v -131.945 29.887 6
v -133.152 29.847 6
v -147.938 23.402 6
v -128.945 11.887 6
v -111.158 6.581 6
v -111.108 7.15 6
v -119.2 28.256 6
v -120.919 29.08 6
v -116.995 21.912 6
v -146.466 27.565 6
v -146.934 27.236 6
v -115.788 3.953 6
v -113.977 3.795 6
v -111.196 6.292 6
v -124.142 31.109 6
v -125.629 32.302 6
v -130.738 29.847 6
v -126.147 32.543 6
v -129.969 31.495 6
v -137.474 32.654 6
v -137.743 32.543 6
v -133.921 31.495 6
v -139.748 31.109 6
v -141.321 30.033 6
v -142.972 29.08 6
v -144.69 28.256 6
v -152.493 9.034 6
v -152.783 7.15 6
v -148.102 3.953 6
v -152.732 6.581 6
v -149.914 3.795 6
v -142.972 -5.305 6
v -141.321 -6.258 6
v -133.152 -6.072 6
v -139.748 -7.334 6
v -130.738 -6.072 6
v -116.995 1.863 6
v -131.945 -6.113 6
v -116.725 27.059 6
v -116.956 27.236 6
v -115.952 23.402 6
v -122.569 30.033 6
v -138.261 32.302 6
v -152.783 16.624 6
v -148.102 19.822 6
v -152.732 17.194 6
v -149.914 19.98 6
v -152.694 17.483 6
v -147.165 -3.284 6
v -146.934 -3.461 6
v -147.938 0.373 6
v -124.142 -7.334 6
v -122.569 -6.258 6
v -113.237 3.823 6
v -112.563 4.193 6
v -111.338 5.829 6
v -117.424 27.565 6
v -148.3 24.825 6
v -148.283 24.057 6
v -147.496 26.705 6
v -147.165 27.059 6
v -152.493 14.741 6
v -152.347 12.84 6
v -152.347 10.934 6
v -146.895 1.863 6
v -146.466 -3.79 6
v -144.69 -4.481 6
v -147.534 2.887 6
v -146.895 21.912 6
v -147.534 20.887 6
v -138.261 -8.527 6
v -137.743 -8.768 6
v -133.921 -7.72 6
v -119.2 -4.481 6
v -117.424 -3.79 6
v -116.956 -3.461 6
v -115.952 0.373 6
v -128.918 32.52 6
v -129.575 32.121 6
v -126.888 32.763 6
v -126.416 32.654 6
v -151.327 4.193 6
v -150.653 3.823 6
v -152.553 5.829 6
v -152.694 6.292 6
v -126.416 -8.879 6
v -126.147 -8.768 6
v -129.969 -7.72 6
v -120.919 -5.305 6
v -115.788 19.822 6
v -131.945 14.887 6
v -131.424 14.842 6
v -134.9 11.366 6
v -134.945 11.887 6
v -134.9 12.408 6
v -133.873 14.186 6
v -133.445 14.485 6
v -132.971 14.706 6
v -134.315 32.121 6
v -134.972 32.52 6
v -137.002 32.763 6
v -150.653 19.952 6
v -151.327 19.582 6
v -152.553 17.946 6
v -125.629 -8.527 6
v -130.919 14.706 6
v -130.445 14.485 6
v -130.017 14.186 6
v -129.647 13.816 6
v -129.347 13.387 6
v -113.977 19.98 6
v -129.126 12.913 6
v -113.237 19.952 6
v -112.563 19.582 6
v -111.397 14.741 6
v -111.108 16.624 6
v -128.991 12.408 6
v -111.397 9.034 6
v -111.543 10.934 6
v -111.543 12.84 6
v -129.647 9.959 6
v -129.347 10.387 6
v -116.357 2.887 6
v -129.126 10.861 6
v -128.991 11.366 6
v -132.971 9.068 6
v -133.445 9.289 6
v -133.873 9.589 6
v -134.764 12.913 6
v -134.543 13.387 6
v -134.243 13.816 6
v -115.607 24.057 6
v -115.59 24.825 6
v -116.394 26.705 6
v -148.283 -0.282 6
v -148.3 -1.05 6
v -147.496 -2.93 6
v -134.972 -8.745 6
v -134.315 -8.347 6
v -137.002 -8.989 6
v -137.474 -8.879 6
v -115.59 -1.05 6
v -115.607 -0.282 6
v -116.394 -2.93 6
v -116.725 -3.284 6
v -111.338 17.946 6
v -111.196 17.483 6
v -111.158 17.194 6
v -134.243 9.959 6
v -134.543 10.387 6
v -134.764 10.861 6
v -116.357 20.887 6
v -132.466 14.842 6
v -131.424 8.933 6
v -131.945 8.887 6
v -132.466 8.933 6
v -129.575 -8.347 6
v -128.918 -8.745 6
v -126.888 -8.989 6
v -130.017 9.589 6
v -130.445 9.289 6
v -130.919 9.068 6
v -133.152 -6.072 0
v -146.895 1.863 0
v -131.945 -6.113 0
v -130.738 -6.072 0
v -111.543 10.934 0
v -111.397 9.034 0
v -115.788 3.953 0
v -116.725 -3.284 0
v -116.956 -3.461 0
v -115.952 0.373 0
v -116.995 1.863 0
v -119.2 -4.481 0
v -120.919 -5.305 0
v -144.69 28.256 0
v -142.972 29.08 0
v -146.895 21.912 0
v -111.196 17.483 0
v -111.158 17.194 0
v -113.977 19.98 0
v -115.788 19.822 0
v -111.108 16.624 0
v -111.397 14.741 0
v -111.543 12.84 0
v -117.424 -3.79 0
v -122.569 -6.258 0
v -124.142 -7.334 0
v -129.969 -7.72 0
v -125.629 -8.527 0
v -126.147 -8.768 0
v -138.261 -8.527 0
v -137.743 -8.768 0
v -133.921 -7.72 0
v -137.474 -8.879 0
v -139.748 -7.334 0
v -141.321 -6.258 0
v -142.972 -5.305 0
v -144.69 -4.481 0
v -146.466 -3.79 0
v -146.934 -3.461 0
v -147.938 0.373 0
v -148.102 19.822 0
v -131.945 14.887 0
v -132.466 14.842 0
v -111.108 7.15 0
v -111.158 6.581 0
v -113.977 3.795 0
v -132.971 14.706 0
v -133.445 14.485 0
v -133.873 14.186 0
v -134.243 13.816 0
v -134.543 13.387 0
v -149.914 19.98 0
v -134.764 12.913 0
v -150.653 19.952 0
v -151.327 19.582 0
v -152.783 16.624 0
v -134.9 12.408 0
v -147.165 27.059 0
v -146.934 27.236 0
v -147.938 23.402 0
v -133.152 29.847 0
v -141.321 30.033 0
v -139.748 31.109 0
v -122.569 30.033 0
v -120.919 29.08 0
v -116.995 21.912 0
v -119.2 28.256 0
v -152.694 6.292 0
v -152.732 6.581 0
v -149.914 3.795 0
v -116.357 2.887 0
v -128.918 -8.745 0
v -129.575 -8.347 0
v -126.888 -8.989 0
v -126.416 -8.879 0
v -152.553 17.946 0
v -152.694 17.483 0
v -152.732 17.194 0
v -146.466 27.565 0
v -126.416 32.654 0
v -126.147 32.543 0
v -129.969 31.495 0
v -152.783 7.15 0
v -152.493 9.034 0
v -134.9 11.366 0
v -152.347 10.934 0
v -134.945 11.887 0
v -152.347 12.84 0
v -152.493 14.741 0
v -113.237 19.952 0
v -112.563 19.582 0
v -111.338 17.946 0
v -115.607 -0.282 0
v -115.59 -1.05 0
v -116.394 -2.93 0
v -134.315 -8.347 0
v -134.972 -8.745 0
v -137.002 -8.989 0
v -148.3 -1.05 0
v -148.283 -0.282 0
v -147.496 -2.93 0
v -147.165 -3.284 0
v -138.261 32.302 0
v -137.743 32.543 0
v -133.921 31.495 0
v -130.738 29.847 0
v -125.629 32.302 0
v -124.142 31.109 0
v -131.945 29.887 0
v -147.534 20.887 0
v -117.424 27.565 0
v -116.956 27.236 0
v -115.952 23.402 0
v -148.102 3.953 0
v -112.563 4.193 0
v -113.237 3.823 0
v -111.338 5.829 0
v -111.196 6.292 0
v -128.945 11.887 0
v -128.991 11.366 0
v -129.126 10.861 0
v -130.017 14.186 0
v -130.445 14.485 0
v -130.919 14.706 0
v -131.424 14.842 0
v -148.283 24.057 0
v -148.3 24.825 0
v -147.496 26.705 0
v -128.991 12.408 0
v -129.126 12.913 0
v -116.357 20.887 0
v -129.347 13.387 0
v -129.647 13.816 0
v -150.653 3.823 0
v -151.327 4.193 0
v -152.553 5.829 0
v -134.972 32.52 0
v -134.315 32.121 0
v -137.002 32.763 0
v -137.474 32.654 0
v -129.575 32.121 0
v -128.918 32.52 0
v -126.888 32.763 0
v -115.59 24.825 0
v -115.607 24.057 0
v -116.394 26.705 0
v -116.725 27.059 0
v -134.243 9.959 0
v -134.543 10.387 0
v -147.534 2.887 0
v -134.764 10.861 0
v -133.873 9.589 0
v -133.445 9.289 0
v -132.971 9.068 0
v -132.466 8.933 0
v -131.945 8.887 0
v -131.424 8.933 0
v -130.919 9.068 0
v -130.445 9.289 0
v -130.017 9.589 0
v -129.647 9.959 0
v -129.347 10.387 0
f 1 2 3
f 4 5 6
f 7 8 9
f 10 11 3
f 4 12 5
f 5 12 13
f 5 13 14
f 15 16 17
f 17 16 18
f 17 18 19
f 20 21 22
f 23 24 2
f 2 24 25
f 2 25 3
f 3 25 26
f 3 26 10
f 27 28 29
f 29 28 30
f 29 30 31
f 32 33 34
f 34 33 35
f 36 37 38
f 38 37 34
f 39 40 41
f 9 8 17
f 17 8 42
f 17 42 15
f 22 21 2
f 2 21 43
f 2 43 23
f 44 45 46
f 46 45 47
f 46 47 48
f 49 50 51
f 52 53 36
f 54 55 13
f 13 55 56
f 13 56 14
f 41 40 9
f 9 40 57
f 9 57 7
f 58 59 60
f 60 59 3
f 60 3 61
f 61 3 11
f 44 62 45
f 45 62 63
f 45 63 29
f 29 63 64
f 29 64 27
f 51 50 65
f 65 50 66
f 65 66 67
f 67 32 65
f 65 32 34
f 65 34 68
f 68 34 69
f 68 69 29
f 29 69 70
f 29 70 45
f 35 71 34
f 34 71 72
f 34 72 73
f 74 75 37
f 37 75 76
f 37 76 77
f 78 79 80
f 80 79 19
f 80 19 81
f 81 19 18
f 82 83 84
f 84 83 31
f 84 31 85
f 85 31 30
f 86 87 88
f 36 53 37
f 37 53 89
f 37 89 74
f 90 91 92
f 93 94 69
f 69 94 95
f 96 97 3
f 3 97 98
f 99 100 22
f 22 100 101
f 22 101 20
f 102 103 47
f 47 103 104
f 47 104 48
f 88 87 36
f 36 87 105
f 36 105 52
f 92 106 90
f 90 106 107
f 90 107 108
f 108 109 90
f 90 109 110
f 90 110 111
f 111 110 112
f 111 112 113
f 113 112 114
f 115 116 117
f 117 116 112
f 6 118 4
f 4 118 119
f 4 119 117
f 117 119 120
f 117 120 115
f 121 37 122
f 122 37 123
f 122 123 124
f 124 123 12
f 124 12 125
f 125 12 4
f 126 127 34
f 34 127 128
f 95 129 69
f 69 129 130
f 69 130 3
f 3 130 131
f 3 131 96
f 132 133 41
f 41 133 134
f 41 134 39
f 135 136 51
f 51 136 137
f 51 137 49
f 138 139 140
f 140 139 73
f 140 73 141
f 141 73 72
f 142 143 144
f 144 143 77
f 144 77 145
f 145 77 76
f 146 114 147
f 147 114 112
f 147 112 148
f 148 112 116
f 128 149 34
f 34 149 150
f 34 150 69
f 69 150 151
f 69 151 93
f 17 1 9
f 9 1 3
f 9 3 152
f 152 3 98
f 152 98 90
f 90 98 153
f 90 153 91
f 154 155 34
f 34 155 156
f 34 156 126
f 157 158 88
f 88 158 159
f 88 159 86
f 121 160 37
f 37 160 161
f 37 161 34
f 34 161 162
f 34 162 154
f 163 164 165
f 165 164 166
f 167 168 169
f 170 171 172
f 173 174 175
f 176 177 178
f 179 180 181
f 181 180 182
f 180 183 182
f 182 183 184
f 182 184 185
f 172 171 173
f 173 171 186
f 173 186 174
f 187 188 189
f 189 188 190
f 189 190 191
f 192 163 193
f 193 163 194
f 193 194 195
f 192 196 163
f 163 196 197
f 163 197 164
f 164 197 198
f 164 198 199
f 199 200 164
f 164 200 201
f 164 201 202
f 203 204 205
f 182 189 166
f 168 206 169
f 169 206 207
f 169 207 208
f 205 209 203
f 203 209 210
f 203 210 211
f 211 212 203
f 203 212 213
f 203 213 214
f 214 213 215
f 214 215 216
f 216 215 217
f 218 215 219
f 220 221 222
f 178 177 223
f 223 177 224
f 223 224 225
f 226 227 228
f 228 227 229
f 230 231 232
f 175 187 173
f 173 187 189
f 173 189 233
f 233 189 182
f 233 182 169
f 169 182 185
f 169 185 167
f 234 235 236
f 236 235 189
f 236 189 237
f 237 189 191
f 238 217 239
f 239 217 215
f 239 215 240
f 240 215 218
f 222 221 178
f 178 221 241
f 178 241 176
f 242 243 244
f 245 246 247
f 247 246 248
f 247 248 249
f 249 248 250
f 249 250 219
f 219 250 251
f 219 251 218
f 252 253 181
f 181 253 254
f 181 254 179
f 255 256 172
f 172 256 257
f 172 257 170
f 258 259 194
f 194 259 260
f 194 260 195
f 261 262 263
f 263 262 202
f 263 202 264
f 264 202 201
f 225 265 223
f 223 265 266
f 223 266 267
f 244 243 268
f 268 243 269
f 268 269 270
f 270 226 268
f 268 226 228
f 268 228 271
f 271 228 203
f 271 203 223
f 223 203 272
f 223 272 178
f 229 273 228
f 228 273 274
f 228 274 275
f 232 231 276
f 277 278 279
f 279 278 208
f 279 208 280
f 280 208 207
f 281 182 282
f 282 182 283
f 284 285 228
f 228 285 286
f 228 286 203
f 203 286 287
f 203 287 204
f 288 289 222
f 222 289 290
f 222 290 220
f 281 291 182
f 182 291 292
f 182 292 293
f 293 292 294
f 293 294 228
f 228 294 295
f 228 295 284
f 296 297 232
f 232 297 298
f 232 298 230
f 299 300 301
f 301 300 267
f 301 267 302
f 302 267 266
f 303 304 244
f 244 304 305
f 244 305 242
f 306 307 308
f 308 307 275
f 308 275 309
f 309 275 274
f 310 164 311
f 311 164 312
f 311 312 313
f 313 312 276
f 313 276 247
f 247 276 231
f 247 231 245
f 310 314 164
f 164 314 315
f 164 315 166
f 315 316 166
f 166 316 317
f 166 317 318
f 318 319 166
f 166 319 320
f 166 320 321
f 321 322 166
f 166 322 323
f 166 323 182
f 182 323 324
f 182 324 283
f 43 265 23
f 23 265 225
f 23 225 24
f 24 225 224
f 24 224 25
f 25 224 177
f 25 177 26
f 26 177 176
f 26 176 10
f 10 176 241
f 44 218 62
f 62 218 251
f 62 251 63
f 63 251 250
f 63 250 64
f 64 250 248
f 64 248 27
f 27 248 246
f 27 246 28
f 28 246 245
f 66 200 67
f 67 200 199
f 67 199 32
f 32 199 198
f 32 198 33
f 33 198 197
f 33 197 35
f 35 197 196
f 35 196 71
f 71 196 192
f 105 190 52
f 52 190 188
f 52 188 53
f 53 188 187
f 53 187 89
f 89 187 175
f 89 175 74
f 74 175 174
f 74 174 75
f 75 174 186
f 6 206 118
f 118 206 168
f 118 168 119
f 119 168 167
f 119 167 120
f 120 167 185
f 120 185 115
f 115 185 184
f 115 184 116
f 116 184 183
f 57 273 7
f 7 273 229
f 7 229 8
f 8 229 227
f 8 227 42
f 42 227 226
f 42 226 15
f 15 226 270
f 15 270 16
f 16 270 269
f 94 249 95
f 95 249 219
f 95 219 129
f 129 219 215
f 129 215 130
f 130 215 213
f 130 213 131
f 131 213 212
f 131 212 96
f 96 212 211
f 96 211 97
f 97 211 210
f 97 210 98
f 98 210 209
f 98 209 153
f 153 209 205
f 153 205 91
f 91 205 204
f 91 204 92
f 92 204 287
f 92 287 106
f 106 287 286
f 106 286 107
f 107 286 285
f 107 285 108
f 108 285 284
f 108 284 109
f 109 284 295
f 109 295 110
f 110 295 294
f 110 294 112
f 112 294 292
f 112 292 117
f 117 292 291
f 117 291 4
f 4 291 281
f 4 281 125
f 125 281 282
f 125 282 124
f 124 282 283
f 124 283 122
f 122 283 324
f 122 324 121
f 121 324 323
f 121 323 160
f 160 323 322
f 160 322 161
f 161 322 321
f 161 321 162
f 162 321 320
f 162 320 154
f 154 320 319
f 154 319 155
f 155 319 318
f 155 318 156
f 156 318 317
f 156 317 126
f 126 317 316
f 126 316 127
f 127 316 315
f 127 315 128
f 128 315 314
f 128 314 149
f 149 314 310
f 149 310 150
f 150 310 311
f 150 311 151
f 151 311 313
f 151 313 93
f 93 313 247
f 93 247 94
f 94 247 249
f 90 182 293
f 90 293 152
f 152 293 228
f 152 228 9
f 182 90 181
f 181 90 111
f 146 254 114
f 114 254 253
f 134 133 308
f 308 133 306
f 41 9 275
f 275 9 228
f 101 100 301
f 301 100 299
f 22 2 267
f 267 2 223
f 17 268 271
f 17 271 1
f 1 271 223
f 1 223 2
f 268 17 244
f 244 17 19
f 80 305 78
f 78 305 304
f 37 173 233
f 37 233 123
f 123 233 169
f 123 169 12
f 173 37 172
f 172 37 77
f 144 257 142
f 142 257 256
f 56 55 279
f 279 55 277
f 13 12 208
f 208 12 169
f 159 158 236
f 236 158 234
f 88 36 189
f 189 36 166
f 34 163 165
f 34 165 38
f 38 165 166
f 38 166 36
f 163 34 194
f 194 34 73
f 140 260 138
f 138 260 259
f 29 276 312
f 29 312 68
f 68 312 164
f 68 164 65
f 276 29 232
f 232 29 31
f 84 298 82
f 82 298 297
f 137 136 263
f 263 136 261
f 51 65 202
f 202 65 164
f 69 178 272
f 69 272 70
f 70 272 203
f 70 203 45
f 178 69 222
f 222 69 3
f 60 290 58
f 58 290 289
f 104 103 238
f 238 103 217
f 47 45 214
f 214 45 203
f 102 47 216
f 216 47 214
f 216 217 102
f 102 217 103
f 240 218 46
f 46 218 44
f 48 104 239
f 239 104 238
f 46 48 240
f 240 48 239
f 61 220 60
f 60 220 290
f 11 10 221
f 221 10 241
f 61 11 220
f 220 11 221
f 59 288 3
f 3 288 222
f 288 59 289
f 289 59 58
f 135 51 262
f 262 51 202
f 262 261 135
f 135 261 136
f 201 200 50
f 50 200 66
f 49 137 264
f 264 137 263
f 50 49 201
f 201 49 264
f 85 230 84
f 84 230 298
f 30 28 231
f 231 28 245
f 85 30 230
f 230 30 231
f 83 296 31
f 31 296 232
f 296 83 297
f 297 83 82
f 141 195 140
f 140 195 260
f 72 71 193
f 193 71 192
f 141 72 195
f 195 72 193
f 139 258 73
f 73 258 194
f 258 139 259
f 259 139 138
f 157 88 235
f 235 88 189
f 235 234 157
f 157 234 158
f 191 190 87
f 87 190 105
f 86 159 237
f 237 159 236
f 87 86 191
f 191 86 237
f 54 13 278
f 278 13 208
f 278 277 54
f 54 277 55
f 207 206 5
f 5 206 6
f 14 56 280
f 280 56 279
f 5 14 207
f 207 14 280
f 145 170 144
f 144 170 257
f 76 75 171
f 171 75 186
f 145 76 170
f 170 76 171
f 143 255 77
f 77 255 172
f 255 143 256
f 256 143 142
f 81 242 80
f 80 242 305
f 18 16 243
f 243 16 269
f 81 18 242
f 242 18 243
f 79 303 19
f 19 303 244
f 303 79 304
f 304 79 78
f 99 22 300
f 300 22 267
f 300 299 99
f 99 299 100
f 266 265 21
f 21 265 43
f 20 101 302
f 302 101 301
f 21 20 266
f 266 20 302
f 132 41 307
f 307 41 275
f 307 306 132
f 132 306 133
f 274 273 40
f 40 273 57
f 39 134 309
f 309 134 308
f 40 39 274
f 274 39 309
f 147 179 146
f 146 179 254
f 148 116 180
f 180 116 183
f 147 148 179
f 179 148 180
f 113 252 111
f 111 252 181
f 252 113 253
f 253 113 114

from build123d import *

# Parameters (mm, degrees)
SKETCH1_R           = 3
BOSS_EXTRUDE2_DEPTH = 6
CUT_EXTRUDE1_DEPTH  = 7
CUT_EXTRUDE2_DEPTH  = 7


with BuildPart() as part:
    # Sketch1 → Boss-Extrude2 (new body)
    with BuildSketch(Plane.XY):
        with BuildLine():
            Line((-129.483201213, -12.731798863), (-129.756040866, -10.003402327))
            ThreePointArc((-129.756040866, -10.003402327), (-131.945122685, -10.112584142), (-134.134204503, -10.003402327))
            Line((-134.134204503, -10.003402327), (-134.407044157, -12.731798863))
            ThreePointArc((-134.407044157, -12.731798863), (-142.137187462, -5.76575817), (-152.035027318, -2.554278039))
            Line((-152.035027318, -2.554278039), (-149.808586433, -0.9537937))
            ThreePointArc((-149.808586433, -0.9537937), (-150.997681568, 0.887415858), (-151.997668251, 2.837807232))
            Line((-151.997668251, 2.837807232), (-154.49694879, 1.709895035))
            ThreePointArc((-154.49694879, 1.709895035), (-152.329252239, 11.887415858), (-154.49694879, 22.064936682))
            Line((-154.49694879, 22.064936682), (-151.997668251, 20.937024485))
            ThreePointArc((-151.997668251, 20.937024485), (-150.997681568, 22.887415858), (-149.808586433, 24.728625416))
            Line((-149.808586433, 24.728625416), (-152.035027318, 26.329109756))
            ThreePointArc((-152.035027318, 26.329109756), (-142.137187462, 29.540589886), (-134.407044157, 36.506630579))
            Line((-134.407044157, 36.506630579), (-134.134204503, 33.778234043))
            ThreePointArc((-134.134204503, 33.778234043), (-131.945122685, 33.887415858), (-129.756040866, 33.778234043))
            Line((-129.756040866, 33.778234043), (-129.483201213, 36.506630579))
            ThreePointArc((-129.483201213, 36.506630579), (-121.753057907, 29.540589886), (-111.855218051, 26.329109756))
            Line((-111.855218051, 26.329109756), (-114.081658936, 24.728625416))
            ThreePointArc((-114.081658936, 24.728625416), (-112.892563801, 22.887415858), (-111.892577118, 20.937024485))
            Line((-111.892577118, 20.937024485), (-109.393296579, 22.064936682))
            ThreePointArc((-109.393296579, 22.064936682), (-111.56099313, 11.887415858), (-109.393296579, 1.709895035))
            Line((-109.393296579, 1.709895035), (-111.892577118, 2.837807232))
            ThreePointArc((-111.892577118, 2.837807232), (-112.892563801, 0.887415858), (-114.081658936, -0.9537937))
            Line((-114.081658936, -0.9537937), (-111.855218051, -2.554278039))
            ThreePointArc((-111.855218051, -2.554278039), (-121.753057907, -5.76575817), (-129.483201213, -12.731798863))
        make_face()
        with Locations((-131.945122685, 11.887415858)):
            Circle(SKETCH1_R, mode=Mode.SUBTRACT)
    extrude(amount=BOSS_EXTRUDE2_DEPTH)

    # Sketch2 → Cut-Extrude1 (cut, through all)
    with BuildSketch(Plane(origin=(0, 0, 0), x_dir=(-1, 0, 0), z_dir=(0, 0, -1))):
        with BuildLine():
            ThreePointArc((130.738332945, 29.846952186), (131.945122685, 29.887451596), (133.151912424, 29.846952186))
            Line((133.151912424, 29.846952186), (134.365507242, 32.447465558))
            Line((134.365507242, 32.447465558), (137.658457935, 32.842028481))
            ThreePointArc((137.658457935, 32.842028481), (135.942681801, 34.594415702), (134.407044157, 36.506630579))
            Line((134.407044157, 36.506630579), (134.134204503, 33.778234043))
            ThreePointArc((134.134204503, 33.778234043), (131.945122685, 33.887415858), (129.756040866, 33.778234043))
            Line((129.756040866, 33.778234043), (129.483201213, 36.506630579))
            ThreePointArc((129.483201213, 36.506630579), (127.947563568, 34.594415702), (126.231787434, 32.842028481))
            Line((126.231787434, 32.842028481), (129.524738127, 32.447465558))
            Line((129.524738127, 32.447465558), (130.738332945, 29.846952186))
        make_face()
        with BuildLine():
            Line((148.540455749, 24.263555222), (146.895142515, 21.912294593))
            ThreePointArc((146.895142515, 21.912294593), (147.533610903, 20.887433727), (148.101932254, 19.82207345))
            Line((148.101932254, 19.82207345), (150.960840307, 20.071326194))
            Line((150.960840307, 20.071326194), (152.949017168, 17.416828703))
            ThreePointArc((152.949017168, 17.416828703), (153.608740951, 19.778928032), (154.49694879, 22.064936682))
            Line((154.49694879, 22.064936682), (151.997668251, 20.937024485))
            ThreePointArc((151.997668251, 20.937024485), (150.997681568, 22.887415858), (149.808586433, 24.728625416))
            Line((149.808586433, 24.728625416), (152.035027318, 26.329109756))
            ThreePointArc((152.035027318, 26.329109756), (149.611181835, 26.702903528), (147.235681918, 27.312615637))
            Line((147.235681918, 27.312615637), (148.540455749, 24.263555222))
        make_face()
        with BuildLine():
            ThreePointArc((115.788313115, 19.82207345), (116.356634466, 20.887433727), (116.995102855, 21.912294593))
            Line((116.995102855, 21.912294593), (115.34978962, 24.263555222))
            Line((115.34978962, 24.263555222), (116.654563452, 27.312615637))
            ThreePointArc((116.654563452, 27.312615637), (114.279063535, 26.702903528), (111.855218051, 26.329109756))
            Line((111.855218051, 26.329109756), (114.081658936, 24.728625416))
            ThreePointArc((114.081658936, 24.728625416), (112.892563801, 22.887415858), (111.892577118, 20.937024485))
            Line((111.892577118, 20.937024485), (109.393296579, 22.064936682))
            ThreePointArc((109.393296579, 22.064936682), (110.281504418, 19.778928032), (110.941228201, 17.416828703))
            Line((110.941228201, 17.416828703), (112.929405062, 20.071326194))
            Line((112.929405062, 20.071326194), (115.788313115, 19.82207345))
        make_face()
        with BuildLine():
            Line((150.960840307, 3.703505522), (148.101932254, 3.952758266))
            ThreePointArc((148.101932254, 3.952758266), (147.533610903, 2.887397989), (146.895142515, 1.862537123))
            Line((146.895142515, 1.862537123), (148.540455749, -0.488723506))
            Line((148.540455749, -0.488723506), (147.235681918, -3.537783921))
            ThreePointArc((147.235681918, -3.537783921), (149.611181835, -2.928071812), (152.035027318, -2.554278039))
            Line((152.035027318, -2.554278039), (149.808586433, -0.9537937))
            ThreePointArc((149.808586433, -0.9537937), (150.997681568, 0.887415858), (151.997668251, 2.837807232))
            Line((151.997668251, 2.837807232), (154.49694879, 1.709895035))
            ThreePointArc((154.49694879, 1.709895035), (153.608740951, 3.995903684), (152.949017168, 6.358003014))
            Line((152.949017168, 6.358003014), (150.960840307, 3.703505522))
        make_face()
        with BuildLine():
            ThreePointArc((116.995102855, 1.862537123), (116.356634466, 2.887397989), (115.788313115, 3.952758266))
            Line((115.788313115, 3.952758266), (112.929405062, 3.703505522))
            Line((112.929405062, 3.703505522), (110.941228201, 6.358003014))
            ThreePointArc((110.941228201, 6.358003014), (110.281504418, 3.995903684), (109.393296579, 1.709895035))
            Line((109.393296579, 1.709895035), (111.892577118, 2.837807232))
            ThreePointArc((111.892577118, 2.837807232), (112.892563801, 0.887415858), (114.081658936, -0.9537937))
            Line((114.081658936, -0.9537937), (111.855218051, -2.554278039))
            ThreePointArc((111.855218051, -2.554278039), (114.279063535, -2.928071812), (116.654563452, -3.537783921))
            Line((116.654563452, -3.537783921), (115.34978962, -0.488723506))
            Line((115.34978962, -0.488723506), (116.995102855, 1.862537123))
        make_face()
        with BuildLine():
            Line((134.365507242, -8.672633842), (133.151912424, -6.072120469))
            ThreePointArc((133.151912424, -6.072120469), (131.945122685, -6.11261988), (130.738332945, -6.072120469))
            Line((130.738332945, -6.072120469), (129.524738127, -8.672633842))
            Line((129.524738127, -8.672633842), (126.231787434, -9.067196765))
            ThreePointArc((126.231787434, -9.067196765), (127.947563568, -10.819583986), (129.483201213, -12.731798863))
            Line((129.483201213, -12.731798863), (129.756040866, -10.003402327))
            ThreePointArc((129.756040866, -10.003402327), (131.945122685, -10.112584142), (134.134204503, -10.003402327))
            Line((134.134204503, -10.003402327), (134.407044157, -12.731798863))
            ThreePointArc((134.407044157, -12.731798863), (135.942681801, -10.819583986), (137.658457935, -9.067196765))
            Line((137.658457935, -9.067196765), (134.365507242, -8.672633842))
        make_face()
    extrude(amount=-CUT_EXTRUDE1_DEPTH, mode=Mode.SUBTRACT)

    # Sketch5 → Cut-Extrude2 (cut, through all)
    with BuildSketch(Plane(origin=(0, 0, 0), x_dir=(-1, 0, 0), z_dir=(0, 0, -1))):
        Polygon((130.20552592, 31.11947551), (129.574953313, 32.121497093), (129.310917186, 32.281735325), (128.697286189, 32.654135676), (127.366259017, 32.873895382), (126.416214667, 32.654135676), (126.147436582, 32.54260411), (125.218815368, 32.111317334), (126.147436582, 39.612839074), (129.890239616, 35.341275211), align=None)
        Polygon((137.742808787, 39.612839074), (134.000005753, 35.341275211), (133.68471945, 31.11947551), (134.315292057, 32.121497093), (134.579328183, 32.281735325), (135.19295918, 32.654135676), (136.523986352, 32.873895382), (137.474030702, 32.654135676), (137.742808787, 32.54260411), (138.671430002, 32.111317334), align=None)
        Polygon((151.553547848, 19.458066854), (152.409378922, 18.415243363), (152.694083609, 17.482600968), (152.731883481, 17.194066536), (152.822688785, 16.174213586), (158.854886572, 20.729184019), (153.284202235, 21.834764595), (149.470373293, 19.996910693), (150.653435743, 19.951829588), (150.924224185, 19.803286711), align=None)
        Polygon((148.290018687, 24.365864472), (148.305711352, 25.083484679), (147.830515254, 26.346067876), (147.165175591, 27.058950565), (146.934197379, 27.235953431), (146.096381468, 27.824519606), (153.05720047, 30.771070914), (151.229319167, 25.393926474), (147.730776528, 23.009980675), (148.283266371, 24.057083363), align=None)
        Polygon((148.305711352, -1.308652963), (147.830515254, -2.57123616), (147.165175591, -3.284118849), (146.934197379, -3.461121715), (146.096381468, -4.04968789), (153.05720047, -6.996239198), (151.229319167, -1.619094757), (147.730776528, 0.764851041), (148.283266371, -0.282251647), (148.290018687, -0.591032756), align=None)
        Polygon((150.924224185, 3.971545005), (151.553547848, 4.316764862), (152.409378922, 5.359588353), (152.694083609, 6.292230748), (152.731883481, 6.58076518), (152.822688785, 7.60061813), (158.854886572, 3.045647698), (153.284202235, 1.940067121), (149.470373293, 3.777921023), (150.653435743, 3.823002128), align=None)
        Polygon((128.697286189, -8.87930396), (127.366259017, -9.099063665), (126.416214667, -8.87930396), (126.147436582, -8.767772393), (125.218815368, -8.336485618), (126.147436582, -15.838007358), (129.890239616, -11.566443495), (130.20552592, -7.344643794), (129.574953313, -8.346665377), (129.310917186, -8.506903609), align=None)
        Polygon((134.579328183, -8.506903609), (135.19295918, -8.87930396), (136.523986352, -9.099063665), (137.474030702, -8.87930396), (137.742808787, -8.767772393), (138.671430002, -8.336485618), (137.742808787, -15.838007358), (134.000005753, -11.566443495), (133.68471945, -7.344643794), (134.315292057, -8.346665377), align=None)
        Polygon((112.336697522, 4.316764862), (111.480866448, 5.359588353), (111.19616176, 6.292230748), (111.158361888, 6.58076518), (111.067556584, 7.60061813), (105.035358798, 3.045647698), (110.606043134, 1.940067121), (114.419872076, 3.777921023), (113.236809627, 3.823002128), (112.966021184, 3.971545005), align=None)
        Polygon((115.600226683, -0.591032756), (115.584534017, -1.308652963), (116.059730115, -2.57123616), (116.725069778, -3.284118849), (116.95604799, -3.461121715), (117.793863901, -4.04968789), (110.8330449, -6.996239198), (112.660926203, -1.619094757), (116.159468841, 0.764851041), (115.606978999, -0.282251647), align=None)
        Polygon((115.584534017, 25.083484679), (116.059730115, 26.346067876), (116.725069778, 27.058950565), (116.95604799, 27.235953431), (117.793863901, 27.824519606), (110.8330449, 30.771070914), (112.660926203, 25.393926474), (116.159468841, 23.009980675), (115.606978999, 24.057083363), (115.600226683, 24.365864472), align=None)
        Polygon((112.966021184, 19.803286711), (112.336697522, 19.458066854), (111.480866448, 18.415243363), (111.19616176, 17.482600968), (111.158361888, 17.194066536), (111.067556584, 16.174213586), (105.035358798, 20.729184019), (110.606043134, 21.834764595), (114.419872076, 19.996910693), (113.236809627, 19.951829588), align=None)
    extrude(amount=-CUT_EXTRUDE2_DEPTH, mode=Mode.SUBTRACT)


solid = part.part
